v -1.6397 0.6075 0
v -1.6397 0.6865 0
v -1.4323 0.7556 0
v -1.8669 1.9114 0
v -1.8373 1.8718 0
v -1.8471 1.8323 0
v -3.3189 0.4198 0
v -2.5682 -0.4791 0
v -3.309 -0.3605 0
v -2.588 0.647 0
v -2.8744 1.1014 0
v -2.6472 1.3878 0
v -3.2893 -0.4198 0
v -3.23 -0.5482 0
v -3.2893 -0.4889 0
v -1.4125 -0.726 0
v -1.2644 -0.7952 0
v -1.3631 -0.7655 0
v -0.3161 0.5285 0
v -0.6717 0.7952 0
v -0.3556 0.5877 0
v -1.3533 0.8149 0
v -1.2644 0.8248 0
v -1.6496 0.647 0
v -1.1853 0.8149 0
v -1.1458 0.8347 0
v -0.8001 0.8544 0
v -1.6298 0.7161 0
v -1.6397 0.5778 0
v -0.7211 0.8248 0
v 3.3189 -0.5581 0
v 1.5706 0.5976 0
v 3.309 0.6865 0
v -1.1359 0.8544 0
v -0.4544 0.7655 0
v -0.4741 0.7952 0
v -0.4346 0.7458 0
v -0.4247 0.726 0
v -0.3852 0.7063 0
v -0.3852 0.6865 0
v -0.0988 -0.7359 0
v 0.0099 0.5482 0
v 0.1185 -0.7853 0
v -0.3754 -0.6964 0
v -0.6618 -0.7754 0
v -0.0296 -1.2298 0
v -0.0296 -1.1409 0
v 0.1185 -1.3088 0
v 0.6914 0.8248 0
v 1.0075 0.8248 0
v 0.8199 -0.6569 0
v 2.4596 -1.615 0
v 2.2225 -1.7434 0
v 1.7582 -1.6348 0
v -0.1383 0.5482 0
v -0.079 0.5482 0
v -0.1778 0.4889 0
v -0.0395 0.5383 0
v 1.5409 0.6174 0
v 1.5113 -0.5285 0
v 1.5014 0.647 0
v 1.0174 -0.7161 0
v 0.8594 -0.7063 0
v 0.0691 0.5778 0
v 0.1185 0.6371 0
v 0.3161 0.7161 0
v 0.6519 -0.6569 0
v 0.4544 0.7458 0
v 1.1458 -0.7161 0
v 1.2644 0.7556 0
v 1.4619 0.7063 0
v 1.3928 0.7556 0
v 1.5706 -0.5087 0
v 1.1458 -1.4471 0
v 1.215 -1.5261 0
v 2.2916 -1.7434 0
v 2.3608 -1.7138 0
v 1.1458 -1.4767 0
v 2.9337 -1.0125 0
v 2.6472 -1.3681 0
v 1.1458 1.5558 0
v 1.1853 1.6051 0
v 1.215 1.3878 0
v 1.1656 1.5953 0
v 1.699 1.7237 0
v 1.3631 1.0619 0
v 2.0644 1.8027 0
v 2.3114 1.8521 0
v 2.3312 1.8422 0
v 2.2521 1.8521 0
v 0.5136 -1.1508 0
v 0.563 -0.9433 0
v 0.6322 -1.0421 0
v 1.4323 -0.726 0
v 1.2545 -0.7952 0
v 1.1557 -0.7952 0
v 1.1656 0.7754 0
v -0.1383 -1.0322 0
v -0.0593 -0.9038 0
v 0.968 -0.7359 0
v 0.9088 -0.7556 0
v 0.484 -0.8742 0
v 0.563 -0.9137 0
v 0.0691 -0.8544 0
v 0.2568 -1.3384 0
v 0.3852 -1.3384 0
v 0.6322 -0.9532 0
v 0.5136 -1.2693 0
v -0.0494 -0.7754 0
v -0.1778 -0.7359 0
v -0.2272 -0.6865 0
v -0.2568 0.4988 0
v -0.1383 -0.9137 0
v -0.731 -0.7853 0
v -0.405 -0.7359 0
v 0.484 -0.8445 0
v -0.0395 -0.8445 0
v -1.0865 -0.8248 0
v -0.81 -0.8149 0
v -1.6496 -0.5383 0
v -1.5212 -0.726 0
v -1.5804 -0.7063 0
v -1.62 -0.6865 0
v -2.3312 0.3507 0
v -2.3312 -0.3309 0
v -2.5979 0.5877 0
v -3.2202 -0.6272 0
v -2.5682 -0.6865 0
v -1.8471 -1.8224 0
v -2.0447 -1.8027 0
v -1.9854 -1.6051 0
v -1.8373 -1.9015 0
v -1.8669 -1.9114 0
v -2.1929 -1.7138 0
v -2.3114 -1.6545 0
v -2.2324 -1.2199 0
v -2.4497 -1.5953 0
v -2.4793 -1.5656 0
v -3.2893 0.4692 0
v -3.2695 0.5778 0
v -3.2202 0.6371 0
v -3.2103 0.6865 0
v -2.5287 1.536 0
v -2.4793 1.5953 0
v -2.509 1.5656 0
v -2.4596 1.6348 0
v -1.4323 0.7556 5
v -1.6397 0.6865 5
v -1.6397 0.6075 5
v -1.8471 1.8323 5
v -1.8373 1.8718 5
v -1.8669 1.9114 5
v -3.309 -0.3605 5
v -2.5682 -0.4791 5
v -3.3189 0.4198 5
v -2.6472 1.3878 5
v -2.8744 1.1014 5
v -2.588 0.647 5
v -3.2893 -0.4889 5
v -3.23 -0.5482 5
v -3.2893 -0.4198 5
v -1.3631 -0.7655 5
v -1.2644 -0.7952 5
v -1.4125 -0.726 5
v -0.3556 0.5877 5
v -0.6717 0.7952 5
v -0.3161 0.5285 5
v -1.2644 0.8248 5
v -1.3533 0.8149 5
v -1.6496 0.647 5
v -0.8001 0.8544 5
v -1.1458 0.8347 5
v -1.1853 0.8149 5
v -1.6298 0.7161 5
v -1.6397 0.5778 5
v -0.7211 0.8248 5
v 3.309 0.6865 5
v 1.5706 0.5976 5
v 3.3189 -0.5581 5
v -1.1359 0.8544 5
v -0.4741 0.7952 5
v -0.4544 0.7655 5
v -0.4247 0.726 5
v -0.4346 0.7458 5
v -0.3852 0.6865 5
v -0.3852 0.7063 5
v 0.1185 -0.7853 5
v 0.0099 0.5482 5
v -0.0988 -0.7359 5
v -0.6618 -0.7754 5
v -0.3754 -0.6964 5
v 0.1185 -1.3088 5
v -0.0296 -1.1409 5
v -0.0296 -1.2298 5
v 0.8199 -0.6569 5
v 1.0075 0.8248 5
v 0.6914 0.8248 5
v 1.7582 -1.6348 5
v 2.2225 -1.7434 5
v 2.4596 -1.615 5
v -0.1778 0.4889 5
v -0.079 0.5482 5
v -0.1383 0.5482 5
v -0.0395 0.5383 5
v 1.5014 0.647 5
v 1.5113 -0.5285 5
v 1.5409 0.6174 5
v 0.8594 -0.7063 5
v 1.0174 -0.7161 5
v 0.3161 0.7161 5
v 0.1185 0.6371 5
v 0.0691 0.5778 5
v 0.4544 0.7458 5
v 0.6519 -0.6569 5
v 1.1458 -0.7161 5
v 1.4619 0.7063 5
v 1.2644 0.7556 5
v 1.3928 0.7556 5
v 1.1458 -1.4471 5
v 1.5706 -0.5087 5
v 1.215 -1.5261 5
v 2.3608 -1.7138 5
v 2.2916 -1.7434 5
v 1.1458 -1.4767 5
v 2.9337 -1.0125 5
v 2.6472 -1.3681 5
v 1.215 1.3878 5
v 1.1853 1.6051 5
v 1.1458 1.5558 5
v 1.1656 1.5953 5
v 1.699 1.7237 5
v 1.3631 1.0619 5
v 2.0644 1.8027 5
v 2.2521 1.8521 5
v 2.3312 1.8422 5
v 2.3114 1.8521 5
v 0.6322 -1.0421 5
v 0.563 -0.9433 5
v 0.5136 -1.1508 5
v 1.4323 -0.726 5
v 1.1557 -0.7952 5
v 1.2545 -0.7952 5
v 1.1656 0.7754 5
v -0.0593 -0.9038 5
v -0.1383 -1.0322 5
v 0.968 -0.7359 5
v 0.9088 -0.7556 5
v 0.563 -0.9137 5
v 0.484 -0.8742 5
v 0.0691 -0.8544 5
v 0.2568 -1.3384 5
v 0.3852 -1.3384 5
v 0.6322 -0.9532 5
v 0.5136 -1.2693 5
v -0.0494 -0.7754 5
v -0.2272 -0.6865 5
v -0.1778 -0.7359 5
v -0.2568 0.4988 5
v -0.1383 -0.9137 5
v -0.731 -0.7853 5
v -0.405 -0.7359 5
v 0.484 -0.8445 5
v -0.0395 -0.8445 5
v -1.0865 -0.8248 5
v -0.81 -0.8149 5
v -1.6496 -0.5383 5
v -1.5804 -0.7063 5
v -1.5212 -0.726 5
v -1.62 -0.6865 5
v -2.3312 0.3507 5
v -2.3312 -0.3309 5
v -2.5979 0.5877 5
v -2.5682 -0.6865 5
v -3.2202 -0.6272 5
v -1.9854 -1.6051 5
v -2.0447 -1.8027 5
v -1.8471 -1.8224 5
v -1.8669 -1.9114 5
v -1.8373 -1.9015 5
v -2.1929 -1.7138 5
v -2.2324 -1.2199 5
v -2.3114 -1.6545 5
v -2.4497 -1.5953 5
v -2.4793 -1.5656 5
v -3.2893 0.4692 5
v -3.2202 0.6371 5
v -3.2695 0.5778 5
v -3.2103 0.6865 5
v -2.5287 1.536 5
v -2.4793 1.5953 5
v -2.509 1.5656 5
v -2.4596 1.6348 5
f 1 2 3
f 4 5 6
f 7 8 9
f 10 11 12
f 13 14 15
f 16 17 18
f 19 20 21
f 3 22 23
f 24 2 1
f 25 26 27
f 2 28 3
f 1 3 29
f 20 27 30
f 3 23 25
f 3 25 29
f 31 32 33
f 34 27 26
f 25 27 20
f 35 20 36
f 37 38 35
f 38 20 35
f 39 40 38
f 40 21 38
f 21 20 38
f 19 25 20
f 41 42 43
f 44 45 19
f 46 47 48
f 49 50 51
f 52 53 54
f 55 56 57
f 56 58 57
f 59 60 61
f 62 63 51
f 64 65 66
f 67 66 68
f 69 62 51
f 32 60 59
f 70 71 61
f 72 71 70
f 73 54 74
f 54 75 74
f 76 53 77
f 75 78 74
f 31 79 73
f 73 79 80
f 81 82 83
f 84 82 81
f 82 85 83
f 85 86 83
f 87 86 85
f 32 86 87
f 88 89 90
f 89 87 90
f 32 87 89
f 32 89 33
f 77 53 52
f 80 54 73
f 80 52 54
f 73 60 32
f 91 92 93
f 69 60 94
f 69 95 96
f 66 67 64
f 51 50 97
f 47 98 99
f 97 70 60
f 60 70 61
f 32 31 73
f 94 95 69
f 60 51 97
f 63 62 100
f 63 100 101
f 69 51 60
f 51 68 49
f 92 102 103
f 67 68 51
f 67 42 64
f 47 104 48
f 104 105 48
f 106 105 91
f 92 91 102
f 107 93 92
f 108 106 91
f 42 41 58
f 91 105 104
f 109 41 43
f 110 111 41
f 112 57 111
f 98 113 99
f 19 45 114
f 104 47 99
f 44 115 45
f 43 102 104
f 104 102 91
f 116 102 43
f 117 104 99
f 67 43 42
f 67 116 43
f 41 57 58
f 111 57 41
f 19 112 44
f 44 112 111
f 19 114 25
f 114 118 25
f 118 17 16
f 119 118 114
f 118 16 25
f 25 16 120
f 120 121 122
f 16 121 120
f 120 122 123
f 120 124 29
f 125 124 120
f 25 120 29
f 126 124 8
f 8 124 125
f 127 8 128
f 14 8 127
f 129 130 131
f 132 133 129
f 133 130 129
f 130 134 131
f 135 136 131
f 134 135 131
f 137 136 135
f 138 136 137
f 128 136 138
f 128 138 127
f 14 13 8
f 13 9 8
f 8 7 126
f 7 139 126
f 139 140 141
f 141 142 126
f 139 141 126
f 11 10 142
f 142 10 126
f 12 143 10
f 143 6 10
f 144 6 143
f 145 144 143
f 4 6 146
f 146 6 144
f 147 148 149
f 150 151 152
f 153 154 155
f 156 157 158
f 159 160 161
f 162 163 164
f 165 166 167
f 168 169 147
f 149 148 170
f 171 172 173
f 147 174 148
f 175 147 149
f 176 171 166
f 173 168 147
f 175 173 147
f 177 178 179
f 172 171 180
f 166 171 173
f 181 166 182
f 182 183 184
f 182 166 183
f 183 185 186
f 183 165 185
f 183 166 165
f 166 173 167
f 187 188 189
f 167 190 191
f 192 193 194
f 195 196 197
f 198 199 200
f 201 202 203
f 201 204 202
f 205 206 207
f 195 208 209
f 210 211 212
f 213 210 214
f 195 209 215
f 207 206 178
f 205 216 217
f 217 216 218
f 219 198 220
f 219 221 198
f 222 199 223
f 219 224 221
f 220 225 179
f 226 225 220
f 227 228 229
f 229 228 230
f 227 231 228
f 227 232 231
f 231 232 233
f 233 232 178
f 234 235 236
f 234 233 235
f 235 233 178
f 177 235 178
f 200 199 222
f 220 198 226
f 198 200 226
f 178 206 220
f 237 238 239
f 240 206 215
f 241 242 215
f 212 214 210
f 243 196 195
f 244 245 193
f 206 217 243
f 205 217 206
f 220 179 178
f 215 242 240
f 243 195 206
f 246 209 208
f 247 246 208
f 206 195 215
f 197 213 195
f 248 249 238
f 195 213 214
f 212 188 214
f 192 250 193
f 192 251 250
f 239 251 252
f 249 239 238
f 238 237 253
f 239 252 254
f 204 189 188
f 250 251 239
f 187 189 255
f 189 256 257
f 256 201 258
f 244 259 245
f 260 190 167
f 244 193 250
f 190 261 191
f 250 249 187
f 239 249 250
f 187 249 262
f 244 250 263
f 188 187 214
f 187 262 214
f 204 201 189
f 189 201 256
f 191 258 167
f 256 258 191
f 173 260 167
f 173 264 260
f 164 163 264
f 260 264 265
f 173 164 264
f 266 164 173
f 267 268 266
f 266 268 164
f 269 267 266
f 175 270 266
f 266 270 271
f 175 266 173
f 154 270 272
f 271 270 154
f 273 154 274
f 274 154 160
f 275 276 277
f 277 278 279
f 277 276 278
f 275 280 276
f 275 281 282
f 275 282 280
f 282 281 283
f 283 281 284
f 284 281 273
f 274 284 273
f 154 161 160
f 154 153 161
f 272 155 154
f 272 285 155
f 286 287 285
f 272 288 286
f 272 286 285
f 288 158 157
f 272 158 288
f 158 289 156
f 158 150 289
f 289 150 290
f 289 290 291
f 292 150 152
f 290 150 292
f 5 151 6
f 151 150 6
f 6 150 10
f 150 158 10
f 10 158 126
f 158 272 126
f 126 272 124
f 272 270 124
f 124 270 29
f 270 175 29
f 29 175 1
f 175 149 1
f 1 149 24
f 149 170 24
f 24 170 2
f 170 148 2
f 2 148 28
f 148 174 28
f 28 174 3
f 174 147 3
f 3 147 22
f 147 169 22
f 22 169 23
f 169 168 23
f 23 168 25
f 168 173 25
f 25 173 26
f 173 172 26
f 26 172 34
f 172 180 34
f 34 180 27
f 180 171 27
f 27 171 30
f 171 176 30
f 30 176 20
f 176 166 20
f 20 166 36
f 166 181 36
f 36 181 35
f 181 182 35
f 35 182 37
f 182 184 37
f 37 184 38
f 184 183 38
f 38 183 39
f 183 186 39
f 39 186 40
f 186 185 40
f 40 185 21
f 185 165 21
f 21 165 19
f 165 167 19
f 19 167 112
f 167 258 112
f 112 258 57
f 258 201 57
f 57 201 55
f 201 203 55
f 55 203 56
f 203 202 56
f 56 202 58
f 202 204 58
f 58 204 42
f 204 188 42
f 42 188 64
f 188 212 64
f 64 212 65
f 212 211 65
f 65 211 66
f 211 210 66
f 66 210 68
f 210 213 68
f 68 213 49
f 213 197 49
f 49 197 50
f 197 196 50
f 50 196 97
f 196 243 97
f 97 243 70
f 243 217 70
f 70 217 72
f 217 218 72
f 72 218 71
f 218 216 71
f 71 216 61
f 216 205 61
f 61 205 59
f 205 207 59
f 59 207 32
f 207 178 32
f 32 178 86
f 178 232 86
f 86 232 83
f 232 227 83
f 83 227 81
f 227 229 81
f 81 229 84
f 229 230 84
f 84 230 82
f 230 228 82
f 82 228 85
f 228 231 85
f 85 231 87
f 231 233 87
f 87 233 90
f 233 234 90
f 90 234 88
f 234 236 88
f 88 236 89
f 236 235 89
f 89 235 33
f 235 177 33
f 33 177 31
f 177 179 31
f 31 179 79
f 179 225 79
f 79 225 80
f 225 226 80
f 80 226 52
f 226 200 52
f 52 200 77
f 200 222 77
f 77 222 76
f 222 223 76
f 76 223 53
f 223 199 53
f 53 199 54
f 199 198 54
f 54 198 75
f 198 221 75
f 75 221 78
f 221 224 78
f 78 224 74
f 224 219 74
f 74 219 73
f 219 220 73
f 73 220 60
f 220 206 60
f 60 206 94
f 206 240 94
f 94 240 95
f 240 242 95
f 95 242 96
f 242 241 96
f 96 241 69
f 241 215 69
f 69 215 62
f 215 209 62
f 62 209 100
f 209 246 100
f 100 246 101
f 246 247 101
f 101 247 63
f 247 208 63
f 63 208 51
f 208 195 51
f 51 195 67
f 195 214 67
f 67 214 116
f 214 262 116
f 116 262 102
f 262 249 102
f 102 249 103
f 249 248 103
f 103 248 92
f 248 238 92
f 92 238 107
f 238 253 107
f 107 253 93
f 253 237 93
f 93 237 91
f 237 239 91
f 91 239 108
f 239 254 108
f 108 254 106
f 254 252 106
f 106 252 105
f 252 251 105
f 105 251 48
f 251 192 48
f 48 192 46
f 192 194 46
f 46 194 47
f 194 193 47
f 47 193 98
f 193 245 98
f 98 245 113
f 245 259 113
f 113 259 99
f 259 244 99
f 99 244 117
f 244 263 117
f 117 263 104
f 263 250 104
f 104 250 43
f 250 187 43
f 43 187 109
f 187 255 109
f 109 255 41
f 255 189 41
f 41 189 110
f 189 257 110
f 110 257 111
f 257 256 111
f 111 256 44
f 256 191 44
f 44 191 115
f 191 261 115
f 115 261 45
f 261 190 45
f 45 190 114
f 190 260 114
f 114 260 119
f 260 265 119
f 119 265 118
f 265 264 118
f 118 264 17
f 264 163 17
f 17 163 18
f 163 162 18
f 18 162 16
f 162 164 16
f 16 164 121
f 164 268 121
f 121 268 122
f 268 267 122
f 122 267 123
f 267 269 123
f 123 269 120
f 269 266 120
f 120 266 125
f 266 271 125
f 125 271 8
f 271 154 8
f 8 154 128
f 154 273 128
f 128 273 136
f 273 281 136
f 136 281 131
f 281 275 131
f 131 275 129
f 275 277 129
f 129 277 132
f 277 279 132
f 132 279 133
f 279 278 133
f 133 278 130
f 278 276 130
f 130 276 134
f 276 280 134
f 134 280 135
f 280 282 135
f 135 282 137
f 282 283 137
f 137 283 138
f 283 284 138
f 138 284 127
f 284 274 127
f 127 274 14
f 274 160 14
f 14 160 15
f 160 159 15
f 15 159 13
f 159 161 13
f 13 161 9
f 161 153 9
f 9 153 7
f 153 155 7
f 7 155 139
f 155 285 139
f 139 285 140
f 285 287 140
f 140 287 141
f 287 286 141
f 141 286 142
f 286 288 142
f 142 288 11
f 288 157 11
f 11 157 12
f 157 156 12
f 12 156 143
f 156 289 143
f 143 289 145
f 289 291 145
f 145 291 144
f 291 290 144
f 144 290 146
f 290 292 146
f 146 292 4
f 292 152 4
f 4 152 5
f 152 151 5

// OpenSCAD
// Module names are of the form poly_<inkscape-path-id>().  As a result,
// you can associate a polygon in this OpenSCAD program with the corresponding
// SVG element in the Inkscape document by looking for the XML element with
// the attribute id="inkscape-path-id".

// fudge value is used to ensure that subtracted solids are a tad taller
// in the z dimension than the polygon being subtracted from.  This helps
// keep the resulting .stl file manifold.
fudge = 0.1;

module poly_path4173(h)
{
  scale([25.4/90, -25.4/90, 1]) union()
  {
    linear_extrude(height=h)
      polygon([[-6.615000,-6.772500],[-6.510000,-6.632500],[-6.545000,-6.492500],[-9.170000,-2.292500],[-9.205000,-2.082500],[-8.260000,-1.242500],[-5.810000,-2.047500],[-5.810000,-2.152500],[-5.845000,-2.292500],[-5.810000,-2.432500],[-5.775000,-2.537500],[-5.425000,-2.607500],[-5.075000,-2.677500],[-4.795000,-2.887500],[-4.480000,-2.922500],[-4.200000,-2.887500],[-4.060000,-2.957500],[-4.025000,-3.027500],[-2.835000,-3.027500],[-2.555000,-2.922500],[-2.380000,-2.817500],[-2.135000,-2.817500],[-1.680000,-2.817500],[-1.610000,-2.712500],[-1.540000,-2.642500],[-1.505000,-2.572500],[-1.365000,-2.502500],[-1.365000,-2.432500],[-1.260000,-2.082500],[-1.120000,-1.872500],[-0.910000,-1.767500],[-0.630000,-1.732500],[-0.490000,-1.942500],[-0.280000,-1.942500],[-0.140000,-1.907500],[0.035000,-1.942500],[0.245000,-2.047500],[0.420000,-2.257500],[1.120000,-2.537500],[1.610000,-2.642500],[2.450000,-2.922500],[3.570000,-2.922500],[4.130000,-2.747500],[4.480000,-2.677500],[4.935000,-2.677500],[5.180000,-2.502500],[5.320000,-2.292500],[5.460000,-2.187500],[5.565000,-2.117500],[4.830000,-3.762500],[4.305000,-4.917500],[4.060000,-5.512500],[4.130000,-5.652500],[4.200000,-5.687500],[6.020000,-6.107500],[7.315000,-6.387500],[7.980000,-6.562500],[8.085000,-6.562500],[8.190000,-6.562500],[8.260000,-6.527500],[11.725000,-2.432500],[11.760000,1.977500],[10.395000,3.587500],[9.380000,4.847500],[8.715000,5.722500],[8.365000,6.072500],[8.120000,6.177500],[7.875000,6.177500],[6.230000,5.792500],[5.005000,5.547500],[4.305000,5.407500],[4.060000,5.232500],[4.060000,5.127500],[5.565000,1.802500],[5.355000,1.872500],[5.075000,2.572500],[4.445000,2.817500],[4.095000,2.817500],[4.060000,2.537500],[3.605000,2.537500],[3.430000,2.607500],[3.220000,2.677500],[3.045000,2.502500],[2.905000,2.327500],[2.310000,2.327500],[1.715000,2.992500],[1.715000,3.097500],[1.995000,3.237500],[1.995000,3.342500],[2.240000,3.377500],[2.240000,3.692500],[1.820000,4.077500],[1.820000,4.217500],[1.820000,4.497500],[1.365000,4.742500],[0.910000,4.742500],[0.420000,4.637500],[-0.105000,4.357500],[-0.105000,4.042500],[-0.490000,3.657500],[-0.490000,3.237500],[-0.210000,3.202500],[-0.140000,2.992500],[0.245000,3.027500],[0.420000,2.782500],[-0.175000,2.747500],[-0.350000,2.607500],[-0.630000,2.607500],[-0.805000,2.432500],[-1.330000,2.467500],[-1.435000,2.607500],[-2.345000,2.747500],[-2.590000,2.782500],[-2.870000,2.887500],[-3.850000,2.922500],[-4.480000,2.817500],[-4.830000,2.712500],[-5.005000,2.572500],[-5.390000,2.572500],[-5.600000,2.502500],[-5.740000,2.432500],[-5.845000,1.907500],[-8.260000,1.172500],[-9.100000,1.697500],[-9.100000,2.432500],[-7.910000,4.322500],[-7.035000,5.687500],[-6.545000,6.457500],[-6.510000,6.737500],[-6.615000,6.772500],[-7.245000,6.387500],[-7.770000,6.072500],[-8.190000,5.862500],[-8.680000,5.652500],[-8.785000,5.547500],[-11.410000,2.222500],[-11.445000,1.942500],[-11.655000,1.732500],[-11.655000,1.487500],[-11.725000,1.277500],[-11.760000,-1.487500],[-11.655000,-1.662500],[-11.585000,-2.047500],[-11.410000,-2.257500],[-11.375000,-2.432500],[-10.185000,-3.902500],[-9.380000,-4.917500],[-8.960000,-5.442500],[-8.890000,-5.547500],[-8.785000,-5.652500],[-8.715000,-5.792500],[-6.615000,-6.772500],[-6.615000,-6.772500]]);
  }
}

poly_path4173(5);
